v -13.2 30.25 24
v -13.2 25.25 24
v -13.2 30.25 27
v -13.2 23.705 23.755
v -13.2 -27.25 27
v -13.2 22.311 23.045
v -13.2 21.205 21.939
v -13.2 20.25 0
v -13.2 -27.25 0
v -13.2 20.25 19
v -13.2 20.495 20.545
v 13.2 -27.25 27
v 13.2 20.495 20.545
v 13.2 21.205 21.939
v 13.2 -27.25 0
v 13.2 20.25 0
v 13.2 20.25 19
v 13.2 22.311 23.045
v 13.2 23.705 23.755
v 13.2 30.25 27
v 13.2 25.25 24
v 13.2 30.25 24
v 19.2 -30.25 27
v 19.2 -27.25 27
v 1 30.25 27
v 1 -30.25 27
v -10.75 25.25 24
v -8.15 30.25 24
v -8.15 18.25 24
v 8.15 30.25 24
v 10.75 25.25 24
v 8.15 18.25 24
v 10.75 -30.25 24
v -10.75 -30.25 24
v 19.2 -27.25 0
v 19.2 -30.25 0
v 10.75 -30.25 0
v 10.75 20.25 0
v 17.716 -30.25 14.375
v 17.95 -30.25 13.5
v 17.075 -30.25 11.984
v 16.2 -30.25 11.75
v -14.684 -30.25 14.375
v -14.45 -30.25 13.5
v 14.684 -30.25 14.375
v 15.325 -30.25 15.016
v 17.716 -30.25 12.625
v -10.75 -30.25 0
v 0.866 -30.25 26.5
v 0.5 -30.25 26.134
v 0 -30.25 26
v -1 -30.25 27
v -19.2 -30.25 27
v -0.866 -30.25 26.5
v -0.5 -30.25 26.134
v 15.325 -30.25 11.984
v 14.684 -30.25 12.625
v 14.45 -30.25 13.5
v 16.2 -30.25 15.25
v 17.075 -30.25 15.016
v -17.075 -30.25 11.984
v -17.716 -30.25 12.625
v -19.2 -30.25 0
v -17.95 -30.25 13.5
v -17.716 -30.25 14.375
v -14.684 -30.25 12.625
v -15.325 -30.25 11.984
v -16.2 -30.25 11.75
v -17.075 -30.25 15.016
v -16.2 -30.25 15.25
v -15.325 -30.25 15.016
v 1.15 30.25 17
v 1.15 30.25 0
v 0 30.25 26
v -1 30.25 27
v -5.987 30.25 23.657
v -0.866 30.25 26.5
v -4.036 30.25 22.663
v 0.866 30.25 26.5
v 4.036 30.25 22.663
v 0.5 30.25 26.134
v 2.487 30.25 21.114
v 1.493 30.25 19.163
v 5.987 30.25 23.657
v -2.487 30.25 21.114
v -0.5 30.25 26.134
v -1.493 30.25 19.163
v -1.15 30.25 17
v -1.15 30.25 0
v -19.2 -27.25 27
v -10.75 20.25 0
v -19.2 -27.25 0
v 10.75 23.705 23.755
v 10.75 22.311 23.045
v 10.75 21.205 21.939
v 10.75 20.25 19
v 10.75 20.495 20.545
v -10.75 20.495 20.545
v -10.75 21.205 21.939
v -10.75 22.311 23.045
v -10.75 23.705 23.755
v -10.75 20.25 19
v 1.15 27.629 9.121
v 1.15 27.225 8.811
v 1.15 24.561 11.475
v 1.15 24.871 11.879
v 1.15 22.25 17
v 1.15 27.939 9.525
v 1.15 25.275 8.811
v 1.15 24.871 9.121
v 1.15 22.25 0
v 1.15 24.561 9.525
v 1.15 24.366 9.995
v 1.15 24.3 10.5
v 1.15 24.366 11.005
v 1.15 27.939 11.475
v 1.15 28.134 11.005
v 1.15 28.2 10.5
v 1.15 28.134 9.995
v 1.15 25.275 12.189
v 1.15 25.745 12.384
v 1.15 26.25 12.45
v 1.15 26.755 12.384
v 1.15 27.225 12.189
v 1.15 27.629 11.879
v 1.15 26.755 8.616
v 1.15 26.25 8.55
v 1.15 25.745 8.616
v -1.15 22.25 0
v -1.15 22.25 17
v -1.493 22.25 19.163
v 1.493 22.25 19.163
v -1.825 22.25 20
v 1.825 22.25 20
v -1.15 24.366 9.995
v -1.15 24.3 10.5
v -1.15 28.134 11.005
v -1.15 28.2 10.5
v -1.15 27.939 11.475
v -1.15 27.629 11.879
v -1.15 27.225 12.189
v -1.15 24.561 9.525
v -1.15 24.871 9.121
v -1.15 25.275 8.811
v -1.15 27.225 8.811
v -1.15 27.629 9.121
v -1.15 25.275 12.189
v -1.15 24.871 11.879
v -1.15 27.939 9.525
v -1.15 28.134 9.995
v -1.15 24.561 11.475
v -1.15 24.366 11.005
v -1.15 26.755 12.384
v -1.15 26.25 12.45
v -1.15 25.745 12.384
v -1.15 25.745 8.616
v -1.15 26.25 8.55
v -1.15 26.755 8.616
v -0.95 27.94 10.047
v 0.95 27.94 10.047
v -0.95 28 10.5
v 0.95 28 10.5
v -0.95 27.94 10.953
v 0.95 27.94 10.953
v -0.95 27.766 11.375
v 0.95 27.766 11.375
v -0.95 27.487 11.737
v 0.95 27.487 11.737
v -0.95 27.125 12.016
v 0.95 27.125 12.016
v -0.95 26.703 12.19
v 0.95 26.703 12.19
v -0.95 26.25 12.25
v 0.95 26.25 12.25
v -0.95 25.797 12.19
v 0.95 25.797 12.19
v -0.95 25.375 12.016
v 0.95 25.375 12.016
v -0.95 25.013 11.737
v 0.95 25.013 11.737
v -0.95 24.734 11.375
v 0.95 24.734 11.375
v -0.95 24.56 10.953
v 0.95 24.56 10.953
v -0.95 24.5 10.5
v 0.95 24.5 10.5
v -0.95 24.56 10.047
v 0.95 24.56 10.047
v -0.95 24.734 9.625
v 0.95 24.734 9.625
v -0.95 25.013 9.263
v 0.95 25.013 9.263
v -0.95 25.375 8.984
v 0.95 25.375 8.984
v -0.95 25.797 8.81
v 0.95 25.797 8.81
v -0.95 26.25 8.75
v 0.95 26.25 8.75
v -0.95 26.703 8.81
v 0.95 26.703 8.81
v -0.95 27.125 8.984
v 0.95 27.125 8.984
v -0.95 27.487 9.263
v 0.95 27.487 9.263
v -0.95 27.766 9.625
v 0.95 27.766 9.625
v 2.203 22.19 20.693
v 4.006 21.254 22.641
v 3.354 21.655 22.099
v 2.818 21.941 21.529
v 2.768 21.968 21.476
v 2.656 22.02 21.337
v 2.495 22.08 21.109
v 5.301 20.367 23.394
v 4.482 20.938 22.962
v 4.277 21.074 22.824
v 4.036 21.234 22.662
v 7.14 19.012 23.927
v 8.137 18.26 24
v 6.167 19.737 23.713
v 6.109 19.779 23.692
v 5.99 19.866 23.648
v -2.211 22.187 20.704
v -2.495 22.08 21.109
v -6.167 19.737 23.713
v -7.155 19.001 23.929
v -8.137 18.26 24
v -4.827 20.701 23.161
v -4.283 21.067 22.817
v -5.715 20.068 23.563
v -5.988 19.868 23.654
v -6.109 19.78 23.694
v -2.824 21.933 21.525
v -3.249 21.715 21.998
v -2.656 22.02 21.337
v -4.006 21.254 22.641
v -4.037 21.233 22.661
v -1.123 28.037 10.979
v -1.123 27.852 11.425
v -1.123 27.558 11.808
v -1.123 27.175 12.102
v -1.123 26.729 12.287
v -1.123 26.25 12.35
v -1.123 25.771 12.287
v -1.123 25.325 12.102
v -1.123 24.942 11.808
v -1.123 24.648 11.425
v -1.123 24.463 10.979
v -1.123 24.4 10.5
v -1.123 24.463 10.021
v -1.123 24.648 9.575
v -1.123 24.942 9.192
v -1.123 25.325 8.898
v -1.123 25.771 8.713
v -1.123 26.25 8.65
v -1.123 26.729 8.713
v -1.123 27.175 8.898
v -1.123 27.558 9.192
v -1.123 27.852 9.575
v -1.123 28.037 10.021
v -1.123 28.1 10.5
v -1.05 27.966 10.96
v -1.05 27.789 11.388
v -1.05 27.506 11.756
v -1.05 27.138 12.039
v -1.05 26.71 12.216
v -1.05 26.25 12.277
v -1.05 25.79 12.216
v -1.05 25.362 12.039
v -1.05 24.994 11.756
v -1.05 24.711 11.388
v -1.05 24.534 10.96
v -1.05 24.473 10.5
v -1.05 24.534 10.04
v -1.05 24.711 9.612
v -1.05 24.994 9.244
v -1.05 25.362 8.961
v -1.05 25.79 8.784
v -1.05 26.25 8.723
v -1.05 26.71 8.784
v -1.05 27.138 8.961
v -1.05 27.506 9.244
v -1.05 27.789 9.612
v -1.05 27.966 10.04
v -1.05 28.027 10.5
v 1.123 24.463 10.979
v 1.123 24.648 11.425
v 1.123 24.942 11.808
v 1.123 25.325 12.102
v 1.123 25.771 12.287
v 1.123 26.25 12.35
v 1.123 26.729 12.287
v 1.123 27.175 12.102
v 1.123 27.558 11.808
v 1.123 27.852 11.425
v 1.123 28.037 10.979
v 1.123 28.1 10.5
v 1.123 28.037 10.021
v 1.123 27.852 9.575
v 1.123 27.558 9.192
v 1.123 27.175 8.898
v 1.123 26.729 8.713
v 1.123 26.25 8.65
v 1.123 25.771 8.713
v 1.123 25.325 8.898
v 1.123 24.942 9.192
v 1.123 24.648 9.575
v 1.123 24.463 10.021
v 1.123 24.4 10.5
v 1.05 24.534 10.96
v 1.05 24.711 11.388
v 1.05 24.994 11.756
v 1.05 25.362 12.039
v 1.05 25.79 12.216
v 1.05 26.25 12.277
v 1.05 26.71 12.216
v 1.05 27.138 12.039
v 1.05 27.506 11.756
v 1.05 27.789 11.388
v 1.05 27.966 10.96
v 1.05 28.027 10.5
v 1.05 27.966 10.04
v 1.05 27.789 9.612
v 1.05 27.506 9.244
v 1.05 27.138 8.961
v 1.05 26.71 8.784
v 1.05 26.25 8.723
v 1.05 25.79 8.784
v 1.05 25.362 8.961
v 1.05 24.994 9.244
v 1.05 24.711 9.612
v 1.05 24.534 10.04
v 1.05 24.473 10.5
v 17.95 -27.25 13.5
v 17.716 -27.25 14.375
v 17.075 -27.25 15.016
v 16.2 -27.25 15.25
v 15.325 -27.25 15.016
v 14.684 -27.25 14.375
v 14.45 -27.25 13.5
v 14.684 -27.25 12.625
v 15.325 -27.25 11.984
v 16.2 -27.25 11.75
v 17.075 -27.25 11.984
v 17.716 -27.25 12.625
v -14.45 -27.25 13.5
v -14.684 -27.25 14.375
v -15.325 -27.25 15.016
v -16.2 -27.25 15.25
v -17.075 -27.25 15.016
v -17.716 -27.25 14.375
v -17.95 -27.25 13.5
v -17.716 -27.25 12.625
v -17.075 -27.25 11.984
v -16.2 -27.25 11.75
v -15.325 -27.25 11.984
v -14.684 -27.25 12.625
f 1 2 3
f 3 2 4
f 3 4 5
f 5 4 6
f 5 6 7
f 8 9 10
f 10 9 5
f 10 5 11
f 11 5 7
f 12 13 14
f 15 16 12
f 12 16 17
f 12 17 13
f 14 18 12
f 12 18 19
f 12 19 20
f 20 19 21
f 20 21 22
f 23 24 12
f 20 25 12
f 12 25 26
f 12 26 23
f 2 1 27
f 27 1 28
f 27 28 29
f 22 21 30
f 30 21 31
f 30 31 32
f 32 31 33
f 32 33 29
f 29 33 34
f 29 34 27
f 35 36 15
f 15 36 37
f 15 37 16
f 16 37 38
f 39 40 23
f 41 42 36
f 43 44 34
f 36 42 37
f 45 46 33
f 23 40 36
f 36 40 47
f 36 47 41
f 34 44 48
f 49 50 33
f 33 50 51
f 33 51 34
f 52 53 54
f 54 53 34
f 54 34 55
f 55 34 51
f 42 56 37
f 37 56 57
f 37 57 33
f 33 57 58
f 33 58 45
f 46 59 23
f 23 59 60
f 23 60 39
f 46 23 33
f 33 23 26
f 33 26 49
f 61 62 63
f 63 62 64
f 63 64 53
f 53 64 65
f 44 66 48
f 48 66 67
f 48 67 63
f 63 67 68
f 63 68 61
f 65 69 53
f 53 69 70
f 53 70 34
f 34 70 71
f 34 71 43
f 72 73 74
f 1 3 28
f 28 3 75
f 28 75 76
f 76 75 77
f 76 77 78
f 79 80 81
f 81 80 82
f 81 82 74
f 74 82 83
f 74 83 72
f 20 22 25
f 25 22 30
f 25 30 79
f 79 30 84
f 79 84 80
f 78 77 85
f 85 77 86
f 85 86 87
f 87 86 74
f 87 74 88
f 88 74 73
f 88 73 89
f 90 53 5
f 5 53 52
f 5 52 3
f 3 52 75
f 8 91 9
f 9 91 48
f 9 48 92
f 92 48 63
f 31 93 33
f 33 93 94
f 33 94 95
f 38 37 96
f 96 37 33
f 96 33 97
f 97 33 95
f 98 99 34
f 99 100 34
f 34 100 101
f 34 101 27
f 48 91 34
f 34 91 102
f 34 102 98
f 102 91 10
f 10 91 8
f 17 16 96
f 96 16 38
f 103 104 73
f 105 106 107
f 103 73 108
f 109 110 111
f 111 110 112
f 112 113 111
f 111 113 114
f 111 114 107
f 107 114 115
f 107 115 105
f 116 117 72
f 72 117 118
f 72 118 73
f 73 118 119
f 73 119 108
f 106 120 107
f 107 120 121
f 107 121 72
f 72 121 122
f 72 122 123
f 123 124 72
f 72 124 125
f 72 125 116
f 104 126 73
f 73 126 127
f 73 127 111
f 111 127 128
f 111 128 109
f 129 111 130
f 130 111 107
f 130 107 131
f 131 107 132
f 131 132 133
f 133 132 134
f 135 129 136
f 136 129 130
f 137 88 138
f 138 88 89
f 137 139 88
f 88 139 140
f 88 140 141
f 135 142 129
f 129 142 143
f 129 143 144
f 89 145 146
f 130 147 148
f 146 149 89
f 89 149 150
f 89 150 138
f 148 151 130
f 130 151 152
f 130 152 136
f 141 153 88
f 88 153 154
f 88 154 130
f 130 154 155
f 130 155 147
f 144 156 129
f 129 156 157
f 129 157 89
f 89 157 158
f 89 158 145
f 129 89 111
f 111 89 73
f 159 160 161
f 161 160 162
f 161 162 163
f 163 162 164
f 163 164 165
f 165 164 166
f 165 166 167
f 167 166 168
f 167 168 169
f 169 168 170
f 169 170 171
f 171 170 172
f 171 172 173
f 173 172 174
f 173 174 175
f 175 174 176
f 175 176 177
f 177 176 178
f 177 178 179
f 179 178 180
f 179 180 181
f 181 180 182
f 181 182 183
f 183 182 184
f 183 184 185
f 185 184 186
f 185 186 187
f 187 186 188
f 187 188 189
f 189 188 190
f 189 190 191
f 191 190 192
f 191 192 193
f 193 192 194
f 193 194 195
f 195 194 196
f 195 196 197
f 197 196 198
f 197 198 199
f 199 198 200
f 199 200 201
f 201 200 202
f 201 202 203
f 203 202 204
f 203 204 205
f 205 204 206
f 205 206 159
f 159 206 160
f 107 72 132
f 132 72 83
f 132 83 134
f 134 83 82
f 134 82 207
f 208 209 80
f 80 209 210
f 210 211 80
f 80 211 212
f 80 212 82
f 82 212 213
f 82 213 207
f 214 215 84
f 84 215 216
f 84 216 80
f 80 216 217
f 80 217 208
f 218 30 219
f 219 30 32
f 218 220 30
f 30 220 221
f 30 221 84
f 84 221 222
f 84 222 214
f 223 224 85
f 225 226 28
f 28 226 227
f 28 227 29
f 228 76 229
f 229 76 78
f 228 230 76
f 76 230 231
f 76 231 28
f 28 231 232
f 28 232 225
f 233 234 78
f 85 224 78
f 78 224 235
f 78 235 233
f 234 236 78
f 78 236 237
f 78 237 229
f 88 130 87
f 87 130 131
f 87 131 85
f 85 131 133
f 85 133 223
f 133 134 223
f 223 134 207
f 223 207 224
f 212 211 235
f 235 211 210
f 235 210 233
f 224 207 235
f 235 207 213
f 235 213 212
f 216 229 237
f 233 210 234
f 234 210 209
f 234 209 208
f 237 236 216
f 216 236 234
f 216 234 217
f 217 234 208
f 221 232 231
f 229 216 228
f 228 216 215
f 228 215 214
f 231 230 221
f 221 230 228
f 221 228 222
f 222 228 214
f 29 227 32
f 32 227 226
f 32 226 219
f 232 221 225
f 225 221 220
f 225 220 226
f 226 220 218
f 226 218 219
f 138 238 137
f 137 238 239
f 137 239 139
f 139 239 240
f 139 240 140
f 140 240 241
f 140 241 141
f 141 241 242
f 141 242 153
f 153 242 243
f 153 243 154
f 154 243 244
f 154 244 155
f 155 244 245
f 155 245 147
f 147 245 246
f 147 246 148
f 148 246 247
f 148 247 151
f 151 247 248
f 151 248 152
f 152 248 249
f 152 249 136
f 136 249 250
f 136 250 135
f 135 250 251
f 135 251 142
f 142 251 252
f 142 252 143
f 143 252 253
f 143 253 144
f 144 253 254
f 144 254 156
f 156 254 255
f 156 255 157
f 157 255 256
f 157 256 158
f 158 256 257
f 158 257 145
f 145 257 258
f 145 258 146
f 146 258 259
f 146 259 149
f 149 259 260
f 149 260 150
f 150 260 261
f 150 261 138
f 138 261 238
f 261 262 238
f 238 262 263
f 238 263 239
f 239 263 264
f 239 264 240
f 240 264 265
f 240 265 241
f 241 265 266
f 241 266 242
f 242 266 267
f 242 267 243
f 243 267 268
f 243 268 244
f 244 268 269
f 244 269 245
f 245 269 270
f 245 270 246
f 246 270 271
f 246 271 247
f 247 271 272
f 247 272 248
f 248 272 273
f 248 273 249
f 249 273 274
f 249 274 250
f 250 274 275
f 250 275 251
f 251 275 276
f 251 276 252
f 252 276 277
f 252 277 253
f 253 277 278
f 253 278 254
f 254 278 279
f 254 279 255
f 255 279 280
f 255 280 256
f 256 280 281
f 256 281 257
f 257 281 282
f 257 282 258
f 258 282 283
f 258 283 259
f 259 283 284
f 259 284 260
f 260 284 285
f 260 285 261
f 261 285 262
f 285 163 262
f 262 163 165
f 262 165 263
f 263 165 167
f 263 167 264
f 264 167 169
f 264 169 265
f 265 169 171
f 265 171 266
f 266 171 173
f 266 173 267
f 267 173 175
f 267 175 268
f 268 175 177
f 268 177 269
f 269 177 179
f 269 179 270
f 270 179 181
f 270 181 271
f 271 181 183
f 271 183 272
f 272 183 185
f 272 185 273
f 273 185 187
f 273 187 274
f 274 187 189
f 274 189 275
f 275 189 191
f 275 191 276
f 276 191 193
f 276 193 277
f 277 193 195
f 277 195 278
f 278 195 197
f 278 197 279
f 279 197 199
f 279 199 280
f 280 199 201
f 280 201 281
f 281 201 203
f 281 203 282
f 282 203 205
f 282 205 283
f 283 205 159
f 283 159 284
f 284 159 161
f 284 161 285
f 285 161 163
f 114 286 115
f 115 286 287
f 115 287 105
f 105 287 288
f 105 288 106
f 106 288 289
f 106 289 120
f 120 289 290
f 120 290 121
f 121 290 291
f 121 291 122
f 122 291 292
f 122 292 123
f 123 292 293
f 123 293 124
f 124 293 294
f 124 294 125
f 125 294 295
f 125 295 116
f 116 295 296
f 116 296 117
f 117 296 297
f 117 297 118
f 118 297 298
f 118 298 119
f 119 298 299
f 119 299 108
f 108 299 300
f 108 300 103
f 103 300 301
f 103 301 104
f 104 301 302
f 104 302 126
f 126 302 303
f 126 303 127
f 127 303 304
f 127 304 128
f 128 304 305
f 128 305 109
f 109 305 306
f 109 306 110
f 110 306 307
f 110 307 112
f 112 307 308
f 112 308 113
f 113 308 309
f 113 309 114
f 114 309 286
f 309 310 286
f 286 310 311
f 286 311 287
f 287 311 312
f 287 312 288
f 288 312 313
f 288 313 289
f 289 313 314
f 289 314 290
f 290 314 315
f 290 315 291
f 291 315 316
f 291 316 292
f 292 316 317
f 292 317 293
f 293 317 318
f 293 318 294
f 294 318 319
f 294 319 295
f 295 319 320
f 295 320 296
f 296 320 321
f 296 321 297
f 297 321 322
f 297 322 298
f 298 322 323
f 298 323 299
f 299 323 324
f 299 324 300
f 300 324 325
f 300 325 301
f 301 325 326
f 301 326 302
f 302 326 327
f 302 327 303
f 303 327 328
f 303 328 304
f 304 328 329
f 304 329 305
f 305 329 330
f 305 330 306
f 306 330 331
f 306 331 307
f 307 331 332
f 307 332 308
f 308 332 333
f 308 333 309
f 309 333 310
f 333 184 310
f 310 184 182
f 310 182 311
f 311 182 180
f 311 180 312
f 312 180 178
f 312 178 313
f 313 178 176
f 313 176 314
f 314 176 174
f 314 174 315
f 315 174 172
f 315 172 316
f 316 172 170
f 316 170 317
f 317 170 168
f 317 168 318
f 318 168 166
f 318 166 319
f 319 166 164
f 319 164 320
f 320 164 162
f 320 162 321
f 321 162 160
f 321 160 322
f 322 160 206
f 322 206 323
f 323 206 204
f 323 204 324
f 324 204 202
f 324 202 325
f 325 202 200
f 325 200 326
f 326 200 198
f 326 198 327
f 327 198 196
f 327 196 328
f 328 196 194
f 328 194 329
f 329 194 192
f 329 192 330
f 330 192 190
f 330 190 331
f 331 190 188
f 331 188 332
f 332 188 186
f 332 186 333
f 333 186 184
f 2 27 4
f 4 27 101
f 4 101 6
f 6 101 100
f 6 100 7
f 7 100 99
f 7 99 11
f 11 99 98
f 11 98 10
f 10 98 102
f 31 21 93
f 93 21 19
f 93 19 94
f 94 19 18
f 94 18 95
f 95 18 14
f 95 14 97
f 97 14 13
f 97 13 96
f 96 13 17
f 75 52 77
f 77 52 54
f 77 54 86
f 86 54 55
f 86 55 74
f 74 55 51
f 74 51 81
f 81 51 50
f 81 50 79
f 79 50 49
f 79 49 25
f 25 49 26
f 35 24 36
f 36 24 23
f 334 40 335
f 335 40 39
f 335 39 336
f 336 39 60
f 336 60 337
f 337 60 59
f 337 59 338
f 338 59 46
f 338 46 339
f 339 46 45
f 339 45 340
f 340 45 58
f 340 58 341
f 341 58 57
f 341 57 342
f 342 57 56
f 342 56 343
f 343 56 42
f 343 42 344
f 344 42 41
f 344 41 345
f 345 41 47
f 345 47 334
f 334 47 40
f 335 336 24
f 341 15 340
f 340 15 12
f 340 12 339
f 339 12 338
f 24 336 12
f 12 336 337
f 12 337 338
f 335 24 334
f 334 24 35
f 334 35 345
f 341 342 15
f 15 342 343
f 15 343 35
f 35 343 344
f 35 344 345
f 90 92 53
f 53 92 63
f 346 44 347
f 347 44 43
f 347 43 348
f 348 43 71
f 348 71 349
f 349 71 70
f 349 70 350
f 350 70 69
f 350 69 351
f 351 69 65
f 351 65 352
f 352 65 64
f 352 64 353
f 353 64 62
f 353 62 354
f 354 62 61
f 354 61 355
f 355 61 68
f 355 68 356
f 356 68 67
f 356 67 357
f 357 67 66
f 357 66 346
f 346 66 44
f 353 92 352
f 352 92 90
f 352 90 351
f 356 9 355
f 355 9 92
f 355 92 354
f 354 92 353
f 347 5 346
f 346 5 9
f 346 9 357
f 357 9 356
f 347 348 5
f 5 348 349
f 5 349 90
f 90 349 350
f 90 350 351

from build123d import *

# Parameters (mm, degrees)
SKETCH_1_W          = 26.4
SKETCH_1_H          = 60.5
EXTRUDE_1_DEPTH     = 27
SKETCH_3_W          = 21.5
SKETCH_3_H          = 60.5
CUT_EXTRUDE_1_DEPTH = 24
SKETCH_4_W          = 24
SKETCH_4_H          = 10
CUT_EXTRUDE_2_DEPTH = 27.4
SKETCH_7_W          = 2.3
SKETCH_7_H          = 8
EXTRUDE_3_DEPTH     = 24
CUT_EXTRUDE_4_REACH = 16.35
SKETCH_9_R          = 1.75
FILLET_1_R          = 7
FILLET_2_R          = 7
FILLET_3_R          = 4
FILLET_4_R          = 0.2
FILLET_7_R          = 5
SKETCH_10_R         = 1
CUT_EXTRUDE_5_DEPTH = 61.5000001
SKETCH_11_W         = 6
SKETCH_11_H         = 27
SKETCH_11_R         = 1.75
EXTRUDE_4_DEPTH     = 3


with BuildPart() as part:
    # ｽｹｯﾁ1 → ﾎﾞｽ - 押し出し1 (new body)
    with BuildSketch(Plane.XY):
        Rectangle(SKETCH_1_W, SKETCH_1_H)
    extrude(amount=EXTRUDE_1_DEPTH)

    # ｽｹｯﾁ3 → ｶｯﾄ - 押し出し1 (cut)
    with BuildSketch(Plane(origin=(0, 0, 0), x_dir=(-1, 0, 0), z_dir=(0, 0, -1))):
        Rectangle(SKETCH_3_W, SKETCH_3_H)
    extrude(amount=-CUT_EXTRUDE_1_DEPTH, mode=Mode.SUBTRACT)

    # ｽｹｯﾁ4 → ｶｯﾄ - 押し出し2 (cut, through all)
    with BuildSketch(Plane.ZY.offset(13.2)):
        with Locations((12, 25.25)):
            Rectangle(SKETCH_4_W, SKETCH_4_H)
    extrude(amount=-CUT_EXTRUDE_2_DEPTH, mode=Mode.SUBTRACT)

    # ｽｹｯﾁ7 → ﾎﾞｽ - 押し出し3 (add)
    with BuildSketch(Plane(origin=(0, 0, 24), x_dir=(-1, 0, 0), z_dir=(0, 0, -1))):
        with Locations((0, 26.25)):
            Rectangle(SKETCH_7_W, SKETCH_7_H)
    extrude(amount=EXTRUDE_3_DEPTH)

    # ｽｹｯﾁ9 → ｶｯﾄ - 押し出し4 (cut, up to next)
    with BuildSketch(Plane(origin=(1.15, 0, 0), x_dir=(0, 0, -1), z_dir=(1, 0, 0)), mode=Mode.PRIVATE) as cut_extrude_4_sk1:
        with Locations((-10.5, 26.25)):
            Circle(SKETCH_9_R)
    cut_extrude_4_tool1 = extrude(cut_extrude_4_sk1.sketch, amount=-CUT_EXTRUDE_4_REACH, mode=Mode.PRIVATE) & part.part
    add(cut_extrude_4_tool1.solids().sort_by_distance((1.15, 26.25, 10.5))[0], mode=Mode.SUBTRACT)

    # ﾌｨﾚｯﾄ1
    fillet_1_edges = [part.edges().sort_by_distance(p)[0] for p in [
        (1.15, 26.25, 24),
    ]]
    fillet(fillet_1_edges, radius=FILLET_1_R)

    # ﾌｨﾚｯﾄ2
    fillet_2_edges = [part.edges().sort_by_distance(p)[0] for p in [
        (-1.15, 26.25, 24),
    ]]
    fillet(fillet_2_edges, radius=FILLET_2_R)

    # ﾌｨﾚｯﾄ3
    fillet_3_edges = [part.edges().sort_by_distance(p)[0] for p in [
        (0, 22.25, 24),
    ]]
    fillet(fillet_3_edges, radius=FILLET_3_R)

    # ﾌｨﾚｯﾄ4
    fillet_4_edges = [part.edges().sort_by_distance(p)[0] for p in [
        (1.15, 26.25, 12.25),
        (-1.15, 26.25, 12.25),
    ]]
    fillet(fillet_4_edges, radius=FILLET_4_R)

    # ﾌｨﾚｯﾄ7
    fillet_7_edges = [part.edges().sort_by_distance(p)[0] for p in [
        (11.975, 20.25, 24),
        (-11.975, 20.25, 24),
    ]]
    fillet(fillet_7_edges, radius=FILLET_7_R)

    # ｽｹｯﾁ10 → ｶｯﾄ - 押し出し5 (cut, through all)
    with BuildSketch(Plane(origin=(0, -30.25, 0), x_dir=(-1, 0, 0), z_dir=(0, -1, 0))):
        with Locations((0, -27)):
            Circle(SKETCH_10_R)
    extrude(amount=-CUT_EXTRUDE_5_DEPTH, mode=Mode.SUBTRACT)

    # ｽｹｯﾁ11 → ﾎﾞｽ - 押し出し4 (add)
    with BuildSketch(Plane(origin=(0, -30.25, 0), x_dir=(-1, 0, 0), z_dir=(0, -1, 0))):
        with Locations((-16.2, -13.5)):
            Rectangle(SKETCH_11_W, SKETCH_11_H)
        with Locations((-16.2, -13.5)):
            Circle(SKETCH_11_R, mode=Mode.SUBTRACT)
        with Locations((16.2, -13.5)):
            Rectangle(SKETCH_11_W, SKETCH_11_H)
        with Locations((16.2, -13.5)):
            Circle(SKETCH_11_R, mode=Mode.SUBTRACT)
    extrude(amount=-EXTRUDE_4_DEPTH)


solid = part.part
